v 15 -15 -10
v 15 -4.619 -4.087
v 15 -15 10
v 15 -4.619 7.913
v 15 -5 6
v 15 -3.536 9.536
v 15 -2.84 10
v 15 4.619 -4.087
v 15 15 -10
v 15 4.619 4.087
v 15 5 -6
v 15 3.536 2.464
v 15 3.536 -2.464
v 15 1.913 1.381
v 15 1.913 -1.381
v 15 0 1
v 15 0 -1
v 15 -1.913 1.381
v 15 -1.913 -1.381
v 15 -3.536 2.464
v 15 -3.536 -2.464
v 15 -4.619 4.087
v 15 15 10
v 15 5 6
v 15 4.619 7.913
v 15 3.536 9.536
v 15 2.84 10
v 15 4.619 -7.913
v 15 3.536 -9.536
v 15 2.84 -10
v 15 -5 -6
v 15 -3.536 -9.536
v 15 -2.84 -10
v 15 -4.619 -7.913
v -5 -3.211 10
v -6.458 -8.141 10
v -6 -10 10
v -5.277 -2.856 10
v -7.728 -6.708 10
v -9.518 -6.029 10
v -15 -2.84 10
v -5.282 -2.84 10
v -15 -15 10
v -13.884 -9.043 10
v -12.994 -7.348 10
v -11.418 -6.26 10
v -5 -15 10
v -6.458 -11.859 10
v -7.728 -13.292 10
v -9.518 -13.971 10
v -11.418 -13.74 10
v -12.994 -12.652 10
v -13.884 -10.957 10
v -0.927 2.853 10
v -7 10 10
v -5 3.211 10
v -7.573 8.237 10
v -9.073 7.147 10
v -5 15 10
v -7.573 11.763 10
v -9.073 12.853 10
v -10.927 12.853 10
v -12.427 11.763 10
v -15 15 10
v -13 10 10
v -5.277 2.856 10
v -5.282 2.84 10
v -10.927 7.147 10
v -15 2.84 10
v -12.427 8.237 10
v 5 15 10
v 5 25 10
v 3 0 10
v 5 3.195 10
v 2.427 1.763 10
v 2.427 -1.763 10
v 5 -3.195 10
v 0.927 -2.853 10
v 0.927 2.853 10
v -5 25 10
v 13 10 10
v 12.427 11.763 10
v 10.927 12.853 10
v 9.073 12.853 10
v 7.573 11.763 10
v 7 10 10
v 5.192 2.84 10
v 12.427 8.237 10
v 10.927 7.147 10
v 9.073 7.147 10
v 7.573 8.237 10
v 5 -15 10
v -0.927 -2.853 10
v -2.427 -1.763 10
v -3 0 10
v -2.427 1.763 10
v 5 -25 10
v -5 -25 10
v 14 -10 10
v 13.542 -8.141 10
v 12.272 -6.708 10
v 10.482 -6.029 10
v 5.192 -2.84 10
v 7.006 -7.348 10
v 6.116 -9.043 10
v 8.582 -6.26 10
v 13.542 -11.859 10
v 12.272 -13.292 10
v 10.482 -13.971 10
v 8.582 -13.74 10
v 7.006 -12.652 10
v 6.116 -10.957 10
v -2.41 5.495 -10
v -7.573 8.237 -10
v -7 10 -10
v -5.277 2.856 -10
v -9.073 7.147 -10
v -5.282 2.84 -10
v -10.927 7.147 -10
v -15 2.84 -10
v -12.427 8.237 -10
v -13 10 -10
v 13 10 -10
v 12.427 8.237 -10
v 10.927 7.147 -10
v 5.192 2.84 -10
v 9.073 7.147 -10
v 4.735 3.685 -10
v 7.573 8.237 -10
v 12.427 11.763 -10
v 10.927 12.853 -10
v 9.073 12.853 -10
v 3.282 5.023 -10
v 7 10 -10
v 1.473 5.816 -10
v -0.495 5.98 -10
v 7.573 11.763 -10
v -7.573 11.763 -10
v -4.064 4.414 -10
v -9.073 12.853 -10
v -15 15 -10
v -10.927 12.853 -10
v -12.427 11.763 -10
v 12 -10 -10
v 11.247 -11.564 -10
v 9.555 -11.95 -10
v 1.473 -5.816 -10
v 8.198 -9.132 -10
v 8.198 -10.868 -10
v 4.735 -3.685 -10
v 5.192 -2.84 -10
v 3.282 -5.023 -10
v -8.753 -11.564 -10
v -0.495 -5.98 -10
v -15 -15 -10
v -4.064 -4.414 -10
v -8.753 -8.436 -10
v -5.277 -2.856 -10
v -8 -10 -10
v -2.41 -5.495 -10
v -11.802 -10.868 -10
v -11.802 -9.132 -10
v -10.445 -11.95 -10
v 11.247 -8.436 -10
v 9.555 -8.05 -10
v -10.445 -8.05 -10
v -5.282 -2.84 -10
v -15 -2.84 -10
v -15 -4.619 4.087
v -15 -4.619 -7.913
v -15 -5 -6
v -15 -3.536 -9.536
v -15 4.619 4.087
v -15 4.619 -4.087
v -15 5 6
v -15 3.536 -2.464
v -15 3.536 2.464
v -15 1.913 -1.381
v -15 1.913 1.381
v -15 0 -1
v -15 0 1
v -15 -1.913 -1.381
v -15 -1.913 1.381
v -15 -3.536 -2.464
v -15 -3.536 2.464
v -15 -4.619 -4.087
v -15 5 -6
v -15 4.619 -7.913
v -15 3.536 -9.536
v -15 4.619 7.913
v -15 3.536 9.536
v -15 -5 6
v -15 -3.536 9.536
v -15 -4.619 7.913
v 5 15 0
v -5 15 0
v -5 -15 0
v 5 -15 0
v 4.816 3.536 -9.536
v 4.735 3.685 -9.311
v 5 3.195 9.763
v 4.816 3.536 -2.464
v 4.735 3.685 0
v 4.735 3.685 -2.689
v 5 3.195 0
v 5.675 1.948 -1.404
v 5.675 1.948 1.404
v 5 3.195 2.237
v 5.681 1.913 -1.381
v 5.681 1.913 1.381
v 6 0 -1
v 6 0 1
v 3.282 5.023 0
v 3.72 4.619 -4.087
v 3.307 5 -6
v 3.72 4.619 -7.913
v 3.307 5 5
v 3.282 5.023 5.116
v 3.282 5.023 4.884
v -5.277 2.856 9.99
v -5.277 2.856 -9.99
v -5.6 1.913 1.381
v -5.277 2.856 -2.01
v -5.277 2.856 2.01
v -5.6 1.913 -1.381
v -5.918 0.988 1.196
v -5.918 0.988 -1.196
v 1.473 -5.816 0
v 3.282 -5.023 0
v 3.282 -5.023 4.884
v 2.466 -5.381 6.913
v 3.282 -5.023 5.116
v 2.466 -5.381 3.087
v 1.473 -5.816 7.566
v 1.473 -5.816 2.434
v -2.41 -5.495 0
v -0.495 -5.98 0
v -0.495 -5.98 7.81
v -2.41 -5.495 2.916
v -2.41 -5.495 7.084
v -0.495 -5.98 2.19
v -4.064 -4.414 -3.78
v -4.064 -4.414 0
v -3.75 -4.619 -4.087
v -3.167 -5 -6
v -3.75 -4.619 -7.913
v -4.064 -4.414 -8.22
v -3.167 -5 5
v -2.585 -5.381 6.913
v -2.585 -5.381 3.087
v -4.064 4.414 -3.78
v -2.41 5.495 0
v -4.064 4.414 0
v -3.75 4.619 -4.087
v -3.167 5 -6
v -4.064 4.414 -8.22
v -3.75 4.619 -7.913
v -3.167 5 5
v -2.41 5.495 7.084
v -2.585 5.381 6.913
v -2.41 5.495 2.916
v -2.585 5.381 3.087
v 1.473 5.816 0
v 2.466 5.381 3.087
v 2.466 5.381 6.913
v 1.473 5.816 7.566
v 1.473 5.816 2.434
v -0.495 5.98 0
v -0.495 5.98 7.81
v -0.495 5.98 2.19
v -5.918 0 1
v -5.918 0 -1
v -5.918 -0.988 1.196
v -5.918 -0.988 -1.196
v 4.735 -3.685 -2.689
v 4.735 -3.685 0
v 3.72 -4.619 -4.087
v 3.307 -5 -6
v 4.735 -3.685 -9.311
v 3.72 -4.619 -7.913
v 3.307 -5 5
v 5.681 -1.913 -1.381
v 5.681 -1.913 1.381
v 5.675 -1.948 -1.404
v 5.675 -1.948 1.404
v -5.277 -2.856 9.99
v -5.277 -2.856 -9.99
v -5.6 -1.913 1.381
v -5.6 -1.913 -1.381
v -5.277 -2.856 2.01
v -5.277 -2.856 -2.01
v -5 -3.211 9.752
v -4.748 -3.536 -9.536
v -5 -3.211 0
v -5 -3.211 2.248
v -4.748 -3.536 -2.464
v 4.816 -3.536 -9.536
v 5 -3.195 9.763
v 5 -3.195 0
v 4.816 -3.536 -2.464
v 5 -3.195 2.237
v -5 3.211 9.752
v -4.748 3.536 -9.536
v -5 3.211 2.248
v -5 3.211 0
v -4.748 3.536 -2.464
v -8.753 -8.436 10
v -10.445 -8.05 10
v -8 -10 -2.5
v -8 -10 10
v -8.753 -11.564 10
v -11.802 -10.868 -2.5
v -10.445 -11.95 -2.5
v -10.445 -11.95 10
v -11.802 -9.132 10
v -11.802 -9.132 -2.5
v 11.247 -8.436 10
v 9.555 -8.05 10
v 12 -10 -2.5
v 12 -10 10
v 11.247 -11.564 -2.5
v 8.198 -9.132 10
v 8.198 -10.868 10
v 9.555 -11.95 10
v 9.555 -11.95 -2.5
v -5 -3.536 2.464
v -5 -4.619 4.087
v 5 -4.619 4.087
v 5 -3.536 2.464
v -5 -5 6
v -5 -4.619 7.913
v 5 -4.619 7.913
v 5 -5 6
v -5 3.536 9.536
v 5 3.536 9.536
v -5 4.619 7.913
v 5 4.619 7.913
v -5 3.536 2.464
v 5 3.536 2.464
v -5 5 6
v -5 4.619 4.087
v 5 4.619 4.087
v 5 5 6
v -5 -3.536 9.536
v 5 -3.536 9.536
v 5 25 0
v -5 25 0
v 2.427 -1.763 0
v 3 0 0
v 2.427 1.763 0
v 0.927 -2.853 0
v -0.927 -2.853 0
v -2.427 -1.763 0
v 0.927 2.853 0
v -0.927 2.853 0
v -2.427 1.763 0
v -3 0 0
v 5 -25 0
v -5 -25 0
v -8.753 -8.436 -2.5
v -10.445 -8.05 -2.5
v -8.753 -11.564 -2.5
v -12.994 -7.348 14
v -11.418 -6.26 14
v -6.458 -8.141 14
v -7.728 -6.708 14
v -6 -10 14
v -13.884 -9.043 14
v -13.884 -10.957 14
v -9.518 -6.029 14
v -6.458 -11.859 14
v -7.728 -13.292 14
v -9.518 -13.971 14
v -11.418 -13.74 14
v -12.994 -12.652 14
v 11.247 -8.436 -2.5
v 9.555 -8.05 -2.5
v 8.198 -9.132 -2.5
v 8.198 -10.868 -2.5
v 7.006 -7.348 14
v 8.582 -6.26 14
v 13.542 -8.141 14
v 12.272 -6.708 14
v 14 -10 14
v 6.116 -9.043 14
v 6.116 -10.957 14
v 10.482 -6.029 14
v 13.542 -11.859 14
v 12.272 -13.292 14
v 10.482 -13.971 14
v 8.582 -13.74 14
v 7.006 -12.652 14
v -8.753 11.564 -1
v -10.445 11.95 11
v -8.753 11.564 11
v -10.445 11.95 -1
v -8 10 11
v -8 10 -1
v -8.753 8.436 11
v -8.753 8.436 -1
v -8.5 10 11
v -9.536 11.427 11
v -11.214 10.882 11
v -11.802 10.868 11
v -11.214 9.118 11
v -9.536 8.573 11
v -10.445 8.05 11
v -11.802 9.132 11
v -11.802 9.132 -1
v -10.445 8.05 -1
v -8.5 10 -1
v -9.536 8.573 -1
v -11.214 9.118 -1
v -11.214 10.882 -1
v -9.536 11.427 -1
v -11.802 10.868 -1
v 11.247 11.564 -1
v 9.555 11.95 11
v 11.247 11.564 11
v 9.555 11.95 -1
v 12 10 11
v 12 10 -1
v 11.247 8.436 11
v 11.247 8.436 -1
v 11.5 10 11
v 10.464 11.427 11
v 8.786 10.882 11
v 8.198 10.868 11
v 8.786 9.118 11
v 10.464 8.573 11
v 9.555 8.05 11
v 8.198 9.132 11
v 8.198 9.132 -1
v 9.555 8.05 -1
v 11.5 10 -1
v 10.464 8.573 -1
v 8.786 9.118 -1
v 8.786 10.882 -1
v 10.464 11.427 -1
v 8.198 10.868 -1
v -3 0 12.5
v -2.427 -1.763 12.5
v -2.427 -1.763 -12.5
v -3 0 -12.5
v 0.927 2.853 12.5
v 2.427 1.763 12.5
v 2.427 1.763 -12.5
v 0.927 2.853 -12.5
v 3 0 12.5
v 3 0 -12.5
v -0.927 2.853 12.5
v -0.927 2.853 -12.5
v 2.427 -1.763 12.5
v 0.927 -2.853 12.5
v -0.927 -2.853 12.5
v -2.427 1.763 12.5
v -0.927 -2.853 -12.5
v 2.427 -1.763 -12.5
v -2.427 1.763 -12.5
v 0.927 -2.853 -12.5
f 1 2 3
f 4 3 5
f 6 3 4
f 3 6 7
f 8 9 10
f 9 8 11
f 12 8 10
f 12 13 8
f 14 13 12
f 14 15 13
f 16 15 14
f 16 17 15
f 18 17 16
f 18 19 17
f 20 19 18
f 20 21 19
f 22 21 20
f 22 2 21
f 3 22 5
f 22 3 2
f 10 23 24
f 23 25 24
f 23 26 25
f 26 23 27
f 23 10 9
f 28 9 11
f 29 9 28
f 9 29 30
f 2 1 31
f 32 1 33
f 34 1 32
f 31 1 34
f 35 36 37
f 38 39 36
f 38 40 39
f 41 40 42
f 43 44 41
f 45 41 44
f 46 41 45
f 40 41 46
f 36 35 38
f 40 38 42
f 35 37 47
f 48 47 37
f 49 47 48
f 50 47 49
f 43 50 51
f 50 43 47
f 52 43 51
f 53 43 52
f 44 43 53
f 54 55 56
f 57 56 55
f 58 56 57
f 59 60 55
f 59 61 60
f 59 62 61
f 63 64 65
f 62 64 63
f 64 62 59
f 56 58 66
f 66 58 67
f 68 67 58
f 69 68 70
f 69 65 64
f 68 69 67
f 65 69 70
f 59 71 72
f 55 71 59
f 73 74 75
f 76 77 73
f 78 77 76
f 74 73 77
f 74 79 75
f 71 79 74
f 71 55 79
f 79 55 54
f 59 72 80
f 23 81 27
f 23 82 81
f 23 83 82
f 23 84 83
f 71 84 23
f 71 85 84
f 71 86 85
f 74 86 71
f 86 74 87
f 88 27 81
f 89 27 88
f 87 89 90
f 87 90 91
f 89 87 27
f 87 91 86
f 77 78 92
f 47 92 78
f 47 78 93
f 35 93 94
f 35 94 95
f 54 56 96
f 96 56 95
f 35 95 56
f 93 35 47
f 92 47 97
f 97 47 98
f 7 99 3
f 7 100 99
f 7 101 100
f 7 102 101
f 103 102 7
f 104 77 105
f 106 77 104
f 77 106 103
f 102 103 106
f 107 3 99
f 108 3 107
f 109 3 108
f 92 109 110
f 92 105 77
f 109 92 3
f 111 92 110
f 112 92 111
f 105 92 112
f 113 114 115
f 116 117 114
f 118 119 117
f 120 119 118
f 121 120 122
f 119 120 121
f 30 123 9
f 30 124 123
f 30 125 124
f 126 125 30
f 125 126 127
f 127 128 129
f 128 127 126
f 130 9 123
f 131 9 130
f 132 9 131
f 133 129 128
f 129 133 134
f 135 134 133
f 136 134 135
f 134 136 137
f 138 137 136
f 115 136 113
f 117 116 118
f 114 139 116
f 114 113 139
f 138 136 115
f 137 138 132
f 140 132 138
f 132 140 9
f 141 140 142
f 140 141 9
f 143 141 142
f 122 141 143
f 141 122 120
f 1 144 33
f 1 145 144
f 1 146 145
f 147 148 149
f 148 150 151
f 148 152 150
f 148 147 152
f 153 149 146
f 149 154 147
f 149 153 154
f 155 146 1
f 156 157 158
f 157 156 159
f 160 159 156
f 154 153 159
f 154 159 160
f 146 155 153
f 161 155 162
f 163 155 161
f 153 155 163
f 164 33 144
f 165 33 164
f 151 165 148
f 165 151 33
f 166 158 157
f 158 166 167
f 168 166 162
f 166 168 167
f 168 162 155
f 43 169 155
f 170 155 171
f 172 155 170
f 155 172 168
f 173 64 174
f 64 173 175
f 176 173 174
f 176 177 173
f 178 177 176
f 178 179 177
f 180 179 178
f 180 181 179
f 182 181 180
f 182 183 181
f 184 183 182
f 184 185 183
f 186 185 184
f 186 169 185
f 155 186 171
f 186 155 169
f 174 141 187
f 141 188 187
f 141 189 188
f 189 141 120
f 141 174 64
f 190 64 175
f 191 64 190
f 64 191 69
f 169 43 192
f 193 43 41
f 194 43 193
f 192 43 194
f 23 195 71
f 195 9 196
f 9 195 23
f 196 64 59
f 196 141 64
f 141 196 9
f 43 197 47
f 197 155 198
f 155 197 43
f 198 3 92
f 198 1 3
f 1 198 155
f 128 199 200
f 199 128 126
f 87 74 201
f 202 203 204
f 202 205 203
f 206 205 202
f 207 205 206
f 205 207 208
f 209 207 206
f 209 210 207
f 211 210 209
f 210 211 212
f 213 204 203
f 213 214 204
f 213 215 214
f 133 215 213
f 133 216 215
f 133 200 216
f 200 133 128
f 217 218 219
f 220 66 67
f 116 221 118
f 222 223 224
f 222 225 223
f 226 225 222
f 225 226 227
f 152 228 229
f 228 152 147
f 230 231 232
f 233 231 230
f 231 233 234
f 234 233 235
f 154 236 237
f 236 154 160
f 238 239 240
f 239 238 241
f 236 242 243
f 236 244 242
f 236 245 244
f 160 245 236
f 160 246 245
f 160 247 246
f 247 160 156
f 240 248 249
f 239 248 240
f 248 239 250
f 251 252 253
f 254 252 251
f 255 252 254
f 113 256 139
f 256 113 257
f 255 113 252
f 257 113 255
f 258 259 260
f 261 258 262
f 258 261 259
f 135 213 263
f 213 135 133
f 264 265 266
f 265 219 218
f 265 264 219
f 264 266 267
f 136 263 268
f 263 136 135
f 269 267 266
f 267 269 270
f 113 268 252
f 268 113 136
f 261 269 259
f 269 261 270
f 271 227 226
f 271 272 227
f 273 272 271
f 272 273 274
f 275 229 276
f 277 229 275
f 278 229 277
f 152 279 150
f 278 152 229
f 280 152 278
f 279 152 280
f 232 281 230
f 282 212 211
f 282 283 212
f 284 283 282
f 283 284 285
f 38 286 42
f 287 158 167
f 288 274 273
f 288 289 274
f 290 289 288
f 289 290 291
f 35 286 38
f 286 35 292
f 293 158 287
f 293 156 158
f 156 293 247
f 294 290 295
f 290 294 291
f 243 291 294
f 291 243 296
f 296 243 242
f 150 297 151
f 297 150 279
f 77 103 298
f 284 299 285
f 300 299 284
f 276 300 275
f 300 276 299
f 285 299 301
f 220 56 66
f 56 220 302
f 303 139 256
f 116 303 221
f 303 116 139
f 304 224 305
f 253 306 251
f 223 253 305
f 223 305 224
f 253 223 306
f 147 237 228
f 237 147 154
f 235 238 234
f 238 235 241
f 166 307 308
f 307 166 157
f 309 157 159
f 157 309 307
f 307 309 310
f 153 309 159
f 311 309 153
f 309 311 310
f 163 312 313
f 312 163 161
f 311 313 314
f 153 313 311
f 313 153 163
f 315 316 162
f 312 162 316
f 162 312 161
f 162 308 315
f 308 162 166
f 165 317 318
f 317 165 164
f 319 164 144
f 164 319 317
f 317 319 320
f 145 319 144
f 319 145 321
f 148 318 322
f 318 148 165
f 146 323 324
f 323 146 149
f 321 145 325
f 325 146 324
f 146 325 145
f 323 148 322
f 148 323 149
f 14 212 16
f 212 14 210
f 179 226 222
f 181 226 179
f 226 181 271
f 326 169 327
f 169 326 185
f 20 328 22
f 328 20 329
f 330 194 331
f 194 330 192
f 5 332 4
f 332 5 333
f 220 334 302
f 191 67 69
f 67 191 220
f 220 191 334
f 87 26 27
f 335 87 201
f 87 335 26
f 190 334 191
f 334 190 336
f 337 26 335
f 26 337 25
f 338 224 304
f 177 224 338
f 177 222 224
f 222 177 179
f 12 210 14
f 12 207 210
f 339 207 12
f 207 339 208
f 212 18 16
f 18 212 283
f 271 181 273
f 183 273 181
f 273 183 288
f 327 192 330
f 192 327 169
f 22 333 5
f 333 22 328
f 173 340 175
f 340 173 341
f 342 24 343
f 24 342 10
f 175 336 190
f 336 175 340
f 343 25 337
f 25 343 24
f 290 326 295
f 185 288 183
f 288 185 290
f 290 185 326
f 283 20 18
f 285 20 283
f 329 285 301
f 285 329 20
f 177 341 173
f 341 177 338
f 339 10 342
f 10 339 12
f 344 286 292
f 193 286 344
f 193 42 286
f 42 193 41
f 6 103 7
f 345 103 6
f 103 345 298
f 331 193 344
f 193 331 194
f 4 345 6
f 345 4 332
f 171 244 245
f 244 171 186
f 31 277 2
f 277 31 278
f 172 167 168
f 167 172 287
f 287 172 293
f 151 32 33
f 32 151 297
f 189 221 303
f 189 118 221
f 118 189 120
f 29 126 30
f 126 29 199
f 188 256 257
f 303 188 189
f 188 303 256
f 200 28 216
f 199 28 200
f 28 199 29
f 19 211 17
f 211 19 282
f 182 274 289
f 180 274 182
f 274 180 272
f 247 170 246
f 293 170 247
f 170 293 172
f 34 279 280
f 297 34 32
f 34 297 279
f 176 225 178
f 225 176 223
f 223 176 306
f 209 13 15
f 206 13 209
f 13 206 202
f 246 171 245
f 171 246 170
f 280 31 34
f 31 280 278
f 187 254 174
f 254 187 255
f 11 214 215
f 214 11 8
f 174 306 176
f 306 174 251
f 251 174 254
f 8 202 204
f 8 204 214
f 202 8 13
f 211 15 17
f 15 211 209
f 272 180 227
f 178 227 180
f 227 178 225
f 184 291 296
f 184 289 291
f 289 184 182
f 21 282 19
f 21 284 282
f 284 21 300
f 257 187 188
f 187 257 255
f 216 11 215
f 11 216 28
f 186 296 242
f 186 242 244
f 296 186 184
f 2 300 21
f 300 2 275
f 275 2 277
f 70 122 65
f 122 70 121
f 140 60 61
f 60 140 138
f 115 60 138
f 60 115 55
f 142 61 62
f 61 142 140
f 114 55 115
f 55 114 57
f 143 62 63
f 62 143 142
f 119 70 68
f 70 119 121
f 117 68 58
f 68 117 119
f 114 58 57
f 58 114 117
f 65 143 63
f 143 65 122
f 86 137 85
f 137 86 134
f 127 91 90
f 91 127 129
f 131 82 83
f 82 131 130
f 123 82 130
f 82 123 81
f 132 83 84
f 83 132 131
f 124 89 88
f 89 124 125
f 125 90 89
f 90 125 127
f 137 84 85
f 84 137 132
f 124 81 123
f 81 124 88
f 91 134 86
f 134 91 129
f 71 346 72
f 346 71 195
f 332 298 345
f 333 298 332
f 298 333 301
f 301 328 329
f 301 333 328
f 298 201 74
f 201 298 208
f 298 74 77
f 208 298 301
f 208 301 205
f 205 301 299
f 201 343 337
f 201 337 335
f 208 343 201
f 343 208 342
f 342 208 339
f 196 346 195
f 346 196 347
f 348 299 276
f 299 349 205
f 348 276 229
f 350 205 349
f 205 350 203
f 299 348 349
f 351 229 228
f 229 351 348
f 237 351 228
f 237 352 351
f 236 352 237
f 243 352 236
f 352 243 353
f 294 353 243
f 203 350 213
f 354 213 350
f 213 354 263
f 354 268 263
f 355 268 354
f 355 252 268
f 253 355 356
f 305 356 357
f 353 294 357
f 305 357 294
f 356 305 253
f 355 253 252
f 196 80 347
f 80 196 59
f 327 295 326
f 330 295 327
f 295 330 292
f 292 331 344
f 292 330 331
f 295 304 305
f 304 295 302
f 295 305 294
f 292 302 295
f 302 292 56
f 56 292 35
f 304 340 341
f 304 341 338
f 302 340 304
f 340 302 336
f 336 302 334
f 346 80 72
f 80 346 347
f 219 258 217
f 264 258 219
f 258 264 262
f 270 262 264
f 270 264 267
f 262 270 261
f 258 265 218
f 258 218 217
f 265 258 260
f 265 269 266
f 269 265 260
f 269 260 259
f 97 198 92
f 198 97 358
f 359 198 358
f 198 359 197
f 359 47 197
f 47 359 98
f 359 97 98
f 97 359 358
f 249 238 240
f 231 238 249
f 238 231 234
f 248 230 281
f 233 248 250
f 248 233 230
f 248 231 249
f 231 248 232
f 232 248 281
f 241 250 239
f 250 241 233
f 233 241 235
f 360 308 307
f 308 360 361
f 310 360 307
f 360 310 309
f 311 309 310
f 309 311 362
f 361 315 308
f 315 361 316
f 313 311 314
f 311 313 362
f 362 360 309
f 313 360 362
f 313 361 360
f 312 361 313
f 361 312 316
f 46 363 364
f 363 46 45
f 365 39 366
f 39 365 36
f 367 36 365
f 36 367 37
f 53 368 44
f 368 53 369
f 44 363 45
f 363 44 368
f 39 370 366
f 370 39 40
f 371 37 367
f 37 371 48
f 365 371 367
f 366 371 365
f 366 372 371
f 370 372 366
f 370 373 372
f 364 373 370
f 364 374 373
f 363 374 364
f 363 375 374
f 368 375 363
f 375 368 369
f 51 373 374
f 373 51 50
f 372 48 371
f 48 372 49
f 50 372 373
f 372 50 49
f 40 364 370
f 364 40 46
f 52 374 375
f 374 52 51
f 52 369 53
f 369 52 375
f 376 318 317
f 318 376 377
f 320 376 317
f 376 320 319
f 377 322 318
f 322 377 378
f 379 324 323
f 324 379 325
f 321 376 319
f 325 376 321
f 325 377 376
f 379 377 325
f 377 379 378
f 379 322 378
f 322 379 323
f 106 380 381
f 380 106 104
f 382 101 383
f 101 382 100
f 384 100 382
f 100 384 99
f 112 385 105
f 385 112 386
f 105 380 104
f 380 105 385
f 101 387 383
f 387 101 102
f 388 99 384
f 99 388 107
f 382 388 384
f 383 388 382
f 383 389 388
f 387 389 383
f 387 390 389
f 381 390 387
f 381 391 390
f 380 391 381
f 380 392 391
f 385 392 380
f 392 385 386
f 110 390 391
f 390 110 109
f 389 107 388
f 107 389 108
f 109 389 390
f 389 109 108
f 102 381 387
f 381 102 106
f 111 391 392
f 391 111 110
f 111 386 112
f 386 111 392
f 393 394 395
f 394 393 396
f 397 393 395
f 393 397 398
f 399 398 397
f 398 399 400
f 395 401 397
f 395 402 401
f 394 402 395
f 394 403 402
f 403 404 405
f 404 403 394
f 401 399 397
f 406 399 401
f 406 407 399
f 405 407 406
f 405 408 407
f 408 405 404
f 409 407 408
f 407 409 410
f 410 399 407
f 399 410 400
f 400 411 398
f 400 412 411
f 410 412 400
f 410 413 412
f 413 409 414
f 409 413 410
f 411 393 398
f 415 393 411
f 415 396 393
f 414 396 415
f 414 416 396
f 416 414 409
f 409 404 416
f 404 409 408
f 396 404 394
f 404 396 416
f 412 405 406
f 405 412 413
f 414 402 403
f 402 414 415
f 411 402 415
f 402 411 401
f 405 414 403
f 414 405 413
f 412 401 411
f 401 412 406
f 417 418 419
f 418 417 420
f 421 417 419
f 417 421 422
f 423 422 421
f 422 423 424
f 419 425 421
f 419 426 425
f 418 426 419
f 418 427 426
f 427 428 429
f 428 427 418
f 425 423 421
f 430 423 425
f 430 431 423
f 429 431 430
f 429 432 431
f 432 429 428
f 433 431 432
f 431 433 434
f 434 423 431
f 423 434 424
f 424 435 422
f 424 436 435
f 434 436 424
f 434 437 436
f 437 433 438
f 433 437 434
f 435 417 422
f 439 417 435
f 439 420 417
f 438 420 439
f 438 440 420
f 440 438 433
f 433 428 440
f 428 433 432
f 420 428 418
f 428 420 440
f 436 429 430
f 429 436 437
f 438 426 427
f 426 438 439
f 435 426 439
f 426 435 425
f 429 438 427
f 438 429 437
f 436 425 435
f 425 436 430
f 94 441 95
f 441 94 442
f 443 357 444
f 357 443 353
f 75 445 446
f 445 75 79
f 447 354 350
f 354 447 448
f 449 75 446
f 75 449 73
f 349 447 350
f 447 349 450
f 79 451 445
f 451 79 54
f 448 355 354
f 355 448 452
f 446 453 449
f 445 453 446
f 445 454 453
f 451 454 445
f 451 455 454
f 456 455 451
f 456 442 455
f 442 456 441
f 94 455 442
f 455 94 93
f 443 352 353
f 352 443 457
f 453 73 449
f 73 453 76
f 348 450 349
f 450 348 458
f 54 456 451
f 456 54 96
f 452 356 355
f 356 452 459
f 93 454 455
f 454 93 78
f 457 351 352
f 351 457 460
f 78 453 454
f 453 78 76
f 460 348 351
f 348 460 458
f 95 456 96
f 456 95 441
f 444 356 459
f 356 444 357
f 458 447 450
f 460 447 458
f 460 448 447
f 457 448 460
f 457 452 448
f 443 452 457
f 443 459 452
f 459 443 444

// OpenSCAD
// Main body of the coupling with additional cutouts and recesses
module main_body() {
    difference() {
        cube([30, 30, 20], center = true);
        
        // Cylindrical recess for pivot pins (enhanced depth)
        translate([0, 0, 0])
            cylinder(h = 35, d = 12, center = true);
        
        // Mounting holes
        translate([-10, -10, 0])
            cylinder(h = 35, d = 4, center = true);
        translate([10, -10, 0])
            cylinder(h = 35, d = 4, center = true);
        
        // Additional curved slots for better integration (added missing slots)
        translate([0, 0, 6])
            rotate([0, 90, 0])
            cylinder(h = 35, d = 10, center = true);
        translate([0, 0, -6])
            rotate([0, 90, 0])
            cylinder(h = 35, d = 10, center = true);
        
        // Extra recesses for mounting features
        translate([-10, 10, 0])
            cylinder(h = 35, d = 6, center = true);
        translate([10, 10, 0])
            cylinder(h = 35, d = 6, center = true);
    }
}

// Clamping jaw with curved gripping profile (increased curvature)
module clamping_jaw() {
    difference() {
        cube([10, 30, 10], center = true);
        
        // Cylindrical cutout for gripping (increased curvature)
        translate([0, 0, 0])
            rotate([0, 90, 0])
            cylinder(h = 35, d = 10, center = true);
        
        // Additional curved profile for better grip
        translate([0, 0, 5])
            rotate([0, 90, 0])
            cylinder(h = 35, d = 8, center = true);
    }
}

// Pivot pin with well-defined cylindrical shape (extended length)
module pivot_pin() {
    cylinder(h = 15, d = 6, center = true);
}

// Fastening bolt in correct positions (increased hexagonal head size)
module fastening_bolt() {
    union() {
        cylinder(h = 15, d = 4, center = true);
        translate([0, 0, 7])
            cylinder(h = 4, d = 8, center = true);
    }
}

// Locking screw for additional support (enhanced prominence and threading)
module locking_screw() {
    difference() {
        cylinder(h = 12, d = 4, center = true);
        translate([0, 0, 0])
            cylinder(h = 12, d = 3, center = true);
    }
}

// Assembly with all components in correct positions
module assembly() {
    main_body();
    
    // Clamping jaws with correct gripping structure
    translate([0, 10, 5])
        clamping_jaw();
    translate([0, -10, 5])
        clamping_jaw();
    
    // Pivot pins for rotational movement
    translate([0, 0, 5])
        pivot_pin();
    translate([0, 0, -5])
        pivot_pin();
    
    // Fastening bolts in correct locations
    translate([-10, -10, 5])
        fastening_bolt();
    translate([10, -10, 5])
        fastening_bolt();
    
    // Locking screws for additional stability
    translate([-10, 10, 5])
        locking_screw();
    translate([10, 10, 5])
        locking_screw();
}

// Render the assembly
assembly();
